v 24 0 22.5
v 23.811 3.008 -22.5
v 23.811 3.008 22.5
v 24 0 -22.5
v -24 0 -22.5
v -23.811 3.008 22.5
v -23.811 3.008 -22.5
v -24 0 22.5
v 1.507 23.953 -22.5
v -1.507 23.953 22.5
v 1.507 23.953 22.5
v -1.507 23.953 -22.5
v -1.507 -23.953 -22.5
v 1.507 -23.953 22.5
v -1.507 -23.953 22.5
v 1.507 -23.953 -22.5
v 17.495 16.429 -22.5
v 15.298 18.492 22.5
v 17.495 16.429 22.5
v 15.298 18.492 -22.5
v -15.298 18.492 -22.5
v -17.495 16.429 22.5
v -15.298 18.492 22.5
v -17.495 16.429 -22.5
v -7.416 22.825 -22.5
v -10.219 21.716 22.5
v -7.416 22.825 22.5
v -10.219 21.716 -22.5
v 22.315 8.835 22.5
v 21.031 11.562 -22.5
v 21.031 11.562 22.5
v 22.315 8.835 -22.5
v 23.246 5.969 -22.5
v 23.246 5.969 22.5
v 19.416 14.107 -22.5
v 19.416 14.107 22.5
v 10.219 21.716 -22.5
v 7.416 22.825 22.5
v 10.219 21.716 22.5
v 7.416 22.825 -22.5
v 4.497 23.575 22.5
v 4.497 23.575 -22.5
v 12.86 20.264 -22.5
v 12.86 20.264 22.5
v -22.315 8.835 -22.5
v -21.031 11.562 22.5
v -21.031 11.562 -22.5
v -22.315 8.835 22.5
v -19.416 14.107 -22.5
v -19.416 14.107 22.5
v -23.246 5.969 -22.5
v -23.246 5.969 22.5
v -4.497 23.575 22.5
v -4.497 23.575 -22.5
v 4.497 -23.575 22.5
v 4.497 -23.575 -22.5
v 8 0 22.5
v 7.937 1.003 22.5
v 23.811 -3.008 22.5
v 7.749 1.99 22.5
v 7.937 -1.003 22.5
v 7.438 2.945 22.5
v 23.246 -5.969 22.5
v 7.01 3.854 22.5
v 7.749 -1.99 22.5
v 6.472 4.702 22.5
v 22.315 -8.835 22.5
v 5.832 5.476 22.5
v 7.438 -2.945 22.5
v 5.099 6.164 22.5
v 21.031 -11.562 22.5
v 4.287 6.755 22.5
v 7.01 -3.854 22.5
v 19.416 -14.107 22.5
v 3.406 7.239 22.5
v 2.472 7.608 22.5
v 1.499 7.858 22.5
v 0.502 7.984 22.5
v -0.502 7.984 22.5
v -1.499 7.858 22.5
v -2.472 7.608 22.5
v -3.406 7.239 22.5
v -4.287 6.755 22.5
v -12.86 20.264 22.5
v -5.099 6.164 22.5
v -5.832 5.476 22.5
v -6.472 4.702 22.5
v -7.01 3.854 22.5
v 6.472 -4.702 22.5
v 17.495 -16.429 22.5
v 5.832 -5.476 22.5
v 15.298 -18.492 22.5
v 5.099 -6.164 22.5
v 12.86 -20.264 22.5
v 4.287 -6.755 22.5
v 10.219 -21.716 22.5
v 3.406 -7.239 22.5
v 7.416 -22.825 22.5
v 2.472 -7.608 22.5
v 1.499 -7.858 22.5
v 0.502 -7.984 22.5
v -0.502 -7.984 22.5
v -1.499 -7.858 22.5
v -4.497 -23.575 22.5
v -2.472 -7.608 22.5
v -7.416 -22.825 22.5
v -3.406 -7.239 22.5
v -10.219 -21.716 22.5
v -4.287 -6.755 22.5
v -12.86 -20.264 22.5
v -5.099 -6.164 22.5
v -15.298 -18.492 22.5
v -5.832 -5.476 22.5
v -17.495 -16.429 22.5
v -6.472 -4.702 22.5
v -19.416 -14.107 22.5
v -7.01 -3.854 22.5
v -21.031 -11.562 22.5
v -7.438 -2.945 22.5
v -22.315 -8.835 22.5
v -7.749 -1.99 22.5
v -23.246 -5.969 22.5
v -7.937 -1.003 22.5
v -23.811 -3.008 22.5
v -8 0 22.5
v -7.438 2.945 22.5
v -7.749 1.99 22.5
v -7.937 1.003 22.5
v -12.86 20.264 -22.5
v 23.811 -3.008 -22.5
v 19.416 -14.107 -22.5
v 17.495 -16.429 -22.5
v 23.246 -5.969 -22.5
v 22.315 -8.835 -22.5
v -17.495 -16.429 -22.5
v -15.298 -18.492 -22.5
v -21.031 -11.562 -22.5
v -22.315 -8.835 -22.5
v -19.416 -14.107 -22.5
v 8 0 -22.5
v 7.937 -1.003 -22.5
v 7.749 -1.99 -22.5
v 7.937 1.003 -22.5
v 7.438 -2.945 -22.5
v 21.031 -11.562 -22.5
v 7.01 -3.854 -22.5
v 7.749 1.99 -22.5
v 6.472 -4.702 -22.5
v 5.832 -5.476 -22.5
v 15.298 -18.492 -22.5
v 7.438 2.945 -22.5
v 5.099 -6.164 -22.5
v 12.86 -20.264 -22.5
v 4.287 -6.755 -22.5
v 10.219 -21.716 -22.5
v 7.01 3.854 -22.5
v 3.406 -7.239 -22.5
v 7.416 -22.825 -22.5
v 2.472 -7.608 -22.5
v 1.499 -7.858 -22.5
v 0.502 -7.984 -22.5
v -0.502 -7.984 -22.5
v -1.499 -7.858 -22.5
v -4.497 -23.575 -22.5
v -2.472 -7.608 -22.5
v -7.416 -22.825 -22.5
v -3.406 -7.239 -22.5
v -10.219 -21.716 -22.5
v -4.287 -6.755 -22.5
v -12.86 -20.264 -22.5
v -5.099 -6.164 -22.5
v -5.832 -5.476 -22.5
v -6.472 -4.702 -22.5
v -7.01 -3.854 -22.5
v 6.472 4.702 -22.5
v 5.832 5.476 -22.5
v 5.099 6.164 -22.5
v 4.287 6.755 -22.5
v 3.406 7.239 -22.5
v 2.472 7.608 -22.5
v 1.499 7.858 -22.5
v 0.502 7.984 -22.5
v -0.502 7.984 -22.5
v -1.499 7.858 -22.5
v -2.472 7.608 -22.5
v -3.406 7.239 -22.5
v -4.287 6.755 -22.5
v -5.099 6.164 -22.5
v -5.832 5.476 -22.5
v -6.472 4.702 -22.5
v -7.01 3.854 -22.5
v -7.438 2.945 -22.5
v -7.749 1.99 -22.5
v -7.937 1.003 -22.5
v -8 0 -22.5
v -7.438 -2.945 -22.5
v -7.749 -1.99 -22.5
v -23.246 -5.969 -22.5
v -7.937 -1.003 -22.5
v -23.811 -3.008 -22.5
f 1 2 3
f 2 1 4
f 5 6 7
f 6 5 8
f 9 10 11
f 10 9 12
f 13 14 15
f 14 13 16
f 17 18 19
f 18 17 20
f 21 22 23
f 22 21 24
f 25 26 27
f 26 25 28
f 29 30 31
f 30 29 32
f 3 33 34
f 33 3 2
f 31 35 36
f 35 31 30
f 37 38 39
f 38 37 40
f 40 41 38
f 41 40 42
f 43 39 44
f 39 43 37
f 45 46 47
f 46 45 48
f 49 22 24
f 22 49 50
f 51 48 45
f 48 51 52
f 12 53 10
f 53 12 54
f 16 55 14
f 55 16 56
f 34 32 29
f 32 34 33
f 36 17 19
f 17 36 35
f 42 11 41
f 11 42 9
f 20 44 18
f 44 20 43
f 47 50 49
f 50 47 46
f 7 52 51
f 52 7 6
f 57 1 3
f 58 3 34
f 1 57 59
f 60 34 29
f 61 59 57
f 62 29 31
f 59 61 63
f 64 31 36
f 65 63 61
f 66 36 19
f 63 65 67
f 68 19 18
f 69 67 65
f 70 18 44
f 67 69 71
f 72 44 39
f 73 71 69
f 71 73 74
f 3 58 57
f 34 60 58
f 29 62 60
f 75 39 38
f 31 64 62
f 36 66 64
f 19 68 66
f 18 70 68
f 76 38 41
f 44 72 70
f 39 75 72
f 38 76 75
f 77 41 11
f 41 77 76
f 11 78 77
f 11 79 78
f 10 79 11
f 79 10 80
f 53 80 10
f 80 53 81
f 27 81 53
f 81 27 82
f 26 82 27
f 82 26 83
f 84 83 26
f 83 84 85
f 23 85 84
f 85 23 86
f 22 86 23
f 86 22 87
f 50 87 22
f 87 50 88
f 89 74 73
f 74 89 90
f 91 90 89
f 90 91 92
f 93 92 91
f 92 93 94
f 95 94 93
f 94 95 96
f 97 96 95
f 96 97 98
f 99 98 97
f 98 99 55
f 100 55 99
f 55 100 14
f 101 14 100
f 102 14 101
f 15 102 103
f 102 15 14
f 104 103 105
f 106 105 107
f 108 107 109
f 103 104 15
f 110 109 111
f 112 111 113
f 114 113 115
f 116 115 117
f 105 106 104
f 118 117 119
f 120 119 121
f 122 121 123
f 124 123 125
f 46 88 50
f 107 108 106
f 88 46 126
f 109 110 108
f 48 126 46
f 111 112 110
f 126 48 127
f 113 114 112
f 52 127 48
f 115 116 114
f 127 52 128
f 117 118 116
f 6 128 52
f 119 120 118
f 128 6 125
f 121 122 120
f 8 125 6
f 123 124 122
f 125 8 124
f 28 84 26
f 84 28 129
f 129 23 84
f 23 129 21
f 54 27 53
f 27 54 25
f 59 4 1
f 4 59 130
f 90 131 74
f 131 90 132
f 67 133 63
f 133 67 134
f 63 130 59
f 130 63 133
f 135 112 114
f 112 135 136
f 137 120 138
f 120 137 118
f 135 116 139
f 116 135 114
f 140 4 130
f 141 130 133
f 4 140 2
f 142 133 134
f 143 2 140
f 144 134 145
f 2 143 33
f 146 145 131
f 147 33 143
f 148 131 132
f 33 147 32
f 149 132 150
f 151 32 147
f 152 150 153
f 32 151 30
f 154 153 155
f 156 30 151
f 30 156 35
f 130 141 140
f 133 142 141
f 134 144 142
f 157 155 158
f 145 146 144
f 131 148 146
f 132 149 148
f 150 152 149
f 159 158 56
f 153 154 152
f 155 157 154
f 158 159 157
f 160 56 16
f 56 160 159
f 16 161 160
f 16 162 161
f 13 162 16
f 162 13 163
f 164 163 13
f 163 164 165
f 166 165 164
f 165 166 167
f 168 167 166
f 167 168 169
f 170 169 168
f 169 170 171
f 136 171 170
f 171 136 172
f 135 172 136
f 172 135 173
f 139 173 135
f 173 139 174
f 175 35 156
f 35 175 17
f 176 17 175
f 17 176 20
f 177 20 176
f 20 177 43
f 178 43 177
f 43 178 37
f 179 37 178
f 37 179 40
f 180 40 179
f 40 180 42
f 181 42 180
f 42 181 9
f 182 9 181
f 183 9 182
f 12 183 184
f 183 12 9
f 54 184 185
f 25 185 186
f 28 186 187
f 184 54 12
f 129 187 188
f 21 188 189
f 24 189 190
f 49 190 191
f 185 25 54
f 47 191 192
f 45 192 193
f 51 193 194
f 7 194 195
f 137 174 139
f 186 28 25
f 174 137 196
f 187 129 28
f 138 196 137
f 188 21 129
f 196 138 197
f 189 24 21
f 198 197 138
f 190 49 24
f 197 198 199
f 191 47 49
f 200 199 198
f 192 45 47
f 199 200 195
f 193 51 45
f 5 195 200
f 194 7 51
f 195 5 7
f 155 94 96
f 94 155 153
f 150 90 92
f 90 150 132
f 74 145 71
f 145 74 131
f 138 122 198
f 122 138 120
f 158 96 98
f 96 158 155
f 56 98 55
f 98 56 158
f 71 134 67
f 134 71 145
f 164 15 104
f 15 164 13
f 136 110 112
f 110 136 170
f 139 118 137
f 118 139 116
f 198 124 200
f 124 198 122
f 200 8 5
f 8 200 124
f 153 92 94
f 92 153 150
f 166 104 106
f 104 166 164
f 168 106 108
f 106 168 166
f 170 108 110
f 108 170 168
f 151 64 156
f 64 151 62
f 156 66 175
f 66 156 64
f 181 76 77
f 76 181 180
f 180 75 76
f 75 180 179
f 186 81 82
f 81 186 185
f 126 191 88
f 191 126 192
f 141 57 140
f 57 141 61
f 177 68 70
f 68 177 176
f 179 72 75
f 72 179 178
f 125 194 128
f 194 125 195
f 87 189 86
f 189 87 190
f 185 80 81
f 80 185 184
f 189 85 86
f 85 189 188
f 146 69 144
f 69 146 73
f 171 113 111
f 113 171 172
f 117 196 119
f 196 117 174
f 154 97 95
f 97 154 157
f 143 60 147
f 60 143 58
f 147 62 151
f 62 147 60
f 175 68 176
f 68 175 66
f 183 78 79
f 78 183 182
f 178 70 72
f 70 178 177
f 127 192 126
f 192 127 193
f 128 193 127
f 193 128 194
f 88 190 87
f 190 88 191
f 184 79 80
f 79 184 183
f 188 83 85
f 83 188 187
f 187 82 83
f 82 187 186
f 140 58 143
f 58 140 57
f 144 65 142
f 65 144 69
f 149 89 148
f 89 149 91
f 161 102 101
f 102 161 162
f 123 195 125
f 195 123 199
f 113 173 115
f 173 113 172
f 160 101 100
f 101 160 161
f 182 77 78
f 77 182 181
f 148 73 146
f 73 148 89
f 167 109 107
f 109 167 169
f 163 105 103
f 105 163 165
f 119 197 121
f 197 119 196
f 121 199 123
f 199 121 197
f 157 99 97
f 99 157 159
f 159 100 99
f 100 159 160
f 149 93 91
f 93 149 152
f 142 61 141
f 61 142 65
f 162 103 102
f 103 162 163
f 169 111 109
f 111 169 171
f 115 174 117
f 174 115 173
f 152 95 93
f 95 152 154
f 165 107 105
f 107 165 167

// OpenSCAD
$fn = 50;


difference() {
	union() {
		translate(v = [0, 0, -22.5000000000]) {
			cylinder(h = 45, r = 24.0000000000);
		}
	}
	union() {
		translate(v = [0, 0, -100.0000000000]) {
			cylinder(h = 200, r = 8);
		}
	}
}
